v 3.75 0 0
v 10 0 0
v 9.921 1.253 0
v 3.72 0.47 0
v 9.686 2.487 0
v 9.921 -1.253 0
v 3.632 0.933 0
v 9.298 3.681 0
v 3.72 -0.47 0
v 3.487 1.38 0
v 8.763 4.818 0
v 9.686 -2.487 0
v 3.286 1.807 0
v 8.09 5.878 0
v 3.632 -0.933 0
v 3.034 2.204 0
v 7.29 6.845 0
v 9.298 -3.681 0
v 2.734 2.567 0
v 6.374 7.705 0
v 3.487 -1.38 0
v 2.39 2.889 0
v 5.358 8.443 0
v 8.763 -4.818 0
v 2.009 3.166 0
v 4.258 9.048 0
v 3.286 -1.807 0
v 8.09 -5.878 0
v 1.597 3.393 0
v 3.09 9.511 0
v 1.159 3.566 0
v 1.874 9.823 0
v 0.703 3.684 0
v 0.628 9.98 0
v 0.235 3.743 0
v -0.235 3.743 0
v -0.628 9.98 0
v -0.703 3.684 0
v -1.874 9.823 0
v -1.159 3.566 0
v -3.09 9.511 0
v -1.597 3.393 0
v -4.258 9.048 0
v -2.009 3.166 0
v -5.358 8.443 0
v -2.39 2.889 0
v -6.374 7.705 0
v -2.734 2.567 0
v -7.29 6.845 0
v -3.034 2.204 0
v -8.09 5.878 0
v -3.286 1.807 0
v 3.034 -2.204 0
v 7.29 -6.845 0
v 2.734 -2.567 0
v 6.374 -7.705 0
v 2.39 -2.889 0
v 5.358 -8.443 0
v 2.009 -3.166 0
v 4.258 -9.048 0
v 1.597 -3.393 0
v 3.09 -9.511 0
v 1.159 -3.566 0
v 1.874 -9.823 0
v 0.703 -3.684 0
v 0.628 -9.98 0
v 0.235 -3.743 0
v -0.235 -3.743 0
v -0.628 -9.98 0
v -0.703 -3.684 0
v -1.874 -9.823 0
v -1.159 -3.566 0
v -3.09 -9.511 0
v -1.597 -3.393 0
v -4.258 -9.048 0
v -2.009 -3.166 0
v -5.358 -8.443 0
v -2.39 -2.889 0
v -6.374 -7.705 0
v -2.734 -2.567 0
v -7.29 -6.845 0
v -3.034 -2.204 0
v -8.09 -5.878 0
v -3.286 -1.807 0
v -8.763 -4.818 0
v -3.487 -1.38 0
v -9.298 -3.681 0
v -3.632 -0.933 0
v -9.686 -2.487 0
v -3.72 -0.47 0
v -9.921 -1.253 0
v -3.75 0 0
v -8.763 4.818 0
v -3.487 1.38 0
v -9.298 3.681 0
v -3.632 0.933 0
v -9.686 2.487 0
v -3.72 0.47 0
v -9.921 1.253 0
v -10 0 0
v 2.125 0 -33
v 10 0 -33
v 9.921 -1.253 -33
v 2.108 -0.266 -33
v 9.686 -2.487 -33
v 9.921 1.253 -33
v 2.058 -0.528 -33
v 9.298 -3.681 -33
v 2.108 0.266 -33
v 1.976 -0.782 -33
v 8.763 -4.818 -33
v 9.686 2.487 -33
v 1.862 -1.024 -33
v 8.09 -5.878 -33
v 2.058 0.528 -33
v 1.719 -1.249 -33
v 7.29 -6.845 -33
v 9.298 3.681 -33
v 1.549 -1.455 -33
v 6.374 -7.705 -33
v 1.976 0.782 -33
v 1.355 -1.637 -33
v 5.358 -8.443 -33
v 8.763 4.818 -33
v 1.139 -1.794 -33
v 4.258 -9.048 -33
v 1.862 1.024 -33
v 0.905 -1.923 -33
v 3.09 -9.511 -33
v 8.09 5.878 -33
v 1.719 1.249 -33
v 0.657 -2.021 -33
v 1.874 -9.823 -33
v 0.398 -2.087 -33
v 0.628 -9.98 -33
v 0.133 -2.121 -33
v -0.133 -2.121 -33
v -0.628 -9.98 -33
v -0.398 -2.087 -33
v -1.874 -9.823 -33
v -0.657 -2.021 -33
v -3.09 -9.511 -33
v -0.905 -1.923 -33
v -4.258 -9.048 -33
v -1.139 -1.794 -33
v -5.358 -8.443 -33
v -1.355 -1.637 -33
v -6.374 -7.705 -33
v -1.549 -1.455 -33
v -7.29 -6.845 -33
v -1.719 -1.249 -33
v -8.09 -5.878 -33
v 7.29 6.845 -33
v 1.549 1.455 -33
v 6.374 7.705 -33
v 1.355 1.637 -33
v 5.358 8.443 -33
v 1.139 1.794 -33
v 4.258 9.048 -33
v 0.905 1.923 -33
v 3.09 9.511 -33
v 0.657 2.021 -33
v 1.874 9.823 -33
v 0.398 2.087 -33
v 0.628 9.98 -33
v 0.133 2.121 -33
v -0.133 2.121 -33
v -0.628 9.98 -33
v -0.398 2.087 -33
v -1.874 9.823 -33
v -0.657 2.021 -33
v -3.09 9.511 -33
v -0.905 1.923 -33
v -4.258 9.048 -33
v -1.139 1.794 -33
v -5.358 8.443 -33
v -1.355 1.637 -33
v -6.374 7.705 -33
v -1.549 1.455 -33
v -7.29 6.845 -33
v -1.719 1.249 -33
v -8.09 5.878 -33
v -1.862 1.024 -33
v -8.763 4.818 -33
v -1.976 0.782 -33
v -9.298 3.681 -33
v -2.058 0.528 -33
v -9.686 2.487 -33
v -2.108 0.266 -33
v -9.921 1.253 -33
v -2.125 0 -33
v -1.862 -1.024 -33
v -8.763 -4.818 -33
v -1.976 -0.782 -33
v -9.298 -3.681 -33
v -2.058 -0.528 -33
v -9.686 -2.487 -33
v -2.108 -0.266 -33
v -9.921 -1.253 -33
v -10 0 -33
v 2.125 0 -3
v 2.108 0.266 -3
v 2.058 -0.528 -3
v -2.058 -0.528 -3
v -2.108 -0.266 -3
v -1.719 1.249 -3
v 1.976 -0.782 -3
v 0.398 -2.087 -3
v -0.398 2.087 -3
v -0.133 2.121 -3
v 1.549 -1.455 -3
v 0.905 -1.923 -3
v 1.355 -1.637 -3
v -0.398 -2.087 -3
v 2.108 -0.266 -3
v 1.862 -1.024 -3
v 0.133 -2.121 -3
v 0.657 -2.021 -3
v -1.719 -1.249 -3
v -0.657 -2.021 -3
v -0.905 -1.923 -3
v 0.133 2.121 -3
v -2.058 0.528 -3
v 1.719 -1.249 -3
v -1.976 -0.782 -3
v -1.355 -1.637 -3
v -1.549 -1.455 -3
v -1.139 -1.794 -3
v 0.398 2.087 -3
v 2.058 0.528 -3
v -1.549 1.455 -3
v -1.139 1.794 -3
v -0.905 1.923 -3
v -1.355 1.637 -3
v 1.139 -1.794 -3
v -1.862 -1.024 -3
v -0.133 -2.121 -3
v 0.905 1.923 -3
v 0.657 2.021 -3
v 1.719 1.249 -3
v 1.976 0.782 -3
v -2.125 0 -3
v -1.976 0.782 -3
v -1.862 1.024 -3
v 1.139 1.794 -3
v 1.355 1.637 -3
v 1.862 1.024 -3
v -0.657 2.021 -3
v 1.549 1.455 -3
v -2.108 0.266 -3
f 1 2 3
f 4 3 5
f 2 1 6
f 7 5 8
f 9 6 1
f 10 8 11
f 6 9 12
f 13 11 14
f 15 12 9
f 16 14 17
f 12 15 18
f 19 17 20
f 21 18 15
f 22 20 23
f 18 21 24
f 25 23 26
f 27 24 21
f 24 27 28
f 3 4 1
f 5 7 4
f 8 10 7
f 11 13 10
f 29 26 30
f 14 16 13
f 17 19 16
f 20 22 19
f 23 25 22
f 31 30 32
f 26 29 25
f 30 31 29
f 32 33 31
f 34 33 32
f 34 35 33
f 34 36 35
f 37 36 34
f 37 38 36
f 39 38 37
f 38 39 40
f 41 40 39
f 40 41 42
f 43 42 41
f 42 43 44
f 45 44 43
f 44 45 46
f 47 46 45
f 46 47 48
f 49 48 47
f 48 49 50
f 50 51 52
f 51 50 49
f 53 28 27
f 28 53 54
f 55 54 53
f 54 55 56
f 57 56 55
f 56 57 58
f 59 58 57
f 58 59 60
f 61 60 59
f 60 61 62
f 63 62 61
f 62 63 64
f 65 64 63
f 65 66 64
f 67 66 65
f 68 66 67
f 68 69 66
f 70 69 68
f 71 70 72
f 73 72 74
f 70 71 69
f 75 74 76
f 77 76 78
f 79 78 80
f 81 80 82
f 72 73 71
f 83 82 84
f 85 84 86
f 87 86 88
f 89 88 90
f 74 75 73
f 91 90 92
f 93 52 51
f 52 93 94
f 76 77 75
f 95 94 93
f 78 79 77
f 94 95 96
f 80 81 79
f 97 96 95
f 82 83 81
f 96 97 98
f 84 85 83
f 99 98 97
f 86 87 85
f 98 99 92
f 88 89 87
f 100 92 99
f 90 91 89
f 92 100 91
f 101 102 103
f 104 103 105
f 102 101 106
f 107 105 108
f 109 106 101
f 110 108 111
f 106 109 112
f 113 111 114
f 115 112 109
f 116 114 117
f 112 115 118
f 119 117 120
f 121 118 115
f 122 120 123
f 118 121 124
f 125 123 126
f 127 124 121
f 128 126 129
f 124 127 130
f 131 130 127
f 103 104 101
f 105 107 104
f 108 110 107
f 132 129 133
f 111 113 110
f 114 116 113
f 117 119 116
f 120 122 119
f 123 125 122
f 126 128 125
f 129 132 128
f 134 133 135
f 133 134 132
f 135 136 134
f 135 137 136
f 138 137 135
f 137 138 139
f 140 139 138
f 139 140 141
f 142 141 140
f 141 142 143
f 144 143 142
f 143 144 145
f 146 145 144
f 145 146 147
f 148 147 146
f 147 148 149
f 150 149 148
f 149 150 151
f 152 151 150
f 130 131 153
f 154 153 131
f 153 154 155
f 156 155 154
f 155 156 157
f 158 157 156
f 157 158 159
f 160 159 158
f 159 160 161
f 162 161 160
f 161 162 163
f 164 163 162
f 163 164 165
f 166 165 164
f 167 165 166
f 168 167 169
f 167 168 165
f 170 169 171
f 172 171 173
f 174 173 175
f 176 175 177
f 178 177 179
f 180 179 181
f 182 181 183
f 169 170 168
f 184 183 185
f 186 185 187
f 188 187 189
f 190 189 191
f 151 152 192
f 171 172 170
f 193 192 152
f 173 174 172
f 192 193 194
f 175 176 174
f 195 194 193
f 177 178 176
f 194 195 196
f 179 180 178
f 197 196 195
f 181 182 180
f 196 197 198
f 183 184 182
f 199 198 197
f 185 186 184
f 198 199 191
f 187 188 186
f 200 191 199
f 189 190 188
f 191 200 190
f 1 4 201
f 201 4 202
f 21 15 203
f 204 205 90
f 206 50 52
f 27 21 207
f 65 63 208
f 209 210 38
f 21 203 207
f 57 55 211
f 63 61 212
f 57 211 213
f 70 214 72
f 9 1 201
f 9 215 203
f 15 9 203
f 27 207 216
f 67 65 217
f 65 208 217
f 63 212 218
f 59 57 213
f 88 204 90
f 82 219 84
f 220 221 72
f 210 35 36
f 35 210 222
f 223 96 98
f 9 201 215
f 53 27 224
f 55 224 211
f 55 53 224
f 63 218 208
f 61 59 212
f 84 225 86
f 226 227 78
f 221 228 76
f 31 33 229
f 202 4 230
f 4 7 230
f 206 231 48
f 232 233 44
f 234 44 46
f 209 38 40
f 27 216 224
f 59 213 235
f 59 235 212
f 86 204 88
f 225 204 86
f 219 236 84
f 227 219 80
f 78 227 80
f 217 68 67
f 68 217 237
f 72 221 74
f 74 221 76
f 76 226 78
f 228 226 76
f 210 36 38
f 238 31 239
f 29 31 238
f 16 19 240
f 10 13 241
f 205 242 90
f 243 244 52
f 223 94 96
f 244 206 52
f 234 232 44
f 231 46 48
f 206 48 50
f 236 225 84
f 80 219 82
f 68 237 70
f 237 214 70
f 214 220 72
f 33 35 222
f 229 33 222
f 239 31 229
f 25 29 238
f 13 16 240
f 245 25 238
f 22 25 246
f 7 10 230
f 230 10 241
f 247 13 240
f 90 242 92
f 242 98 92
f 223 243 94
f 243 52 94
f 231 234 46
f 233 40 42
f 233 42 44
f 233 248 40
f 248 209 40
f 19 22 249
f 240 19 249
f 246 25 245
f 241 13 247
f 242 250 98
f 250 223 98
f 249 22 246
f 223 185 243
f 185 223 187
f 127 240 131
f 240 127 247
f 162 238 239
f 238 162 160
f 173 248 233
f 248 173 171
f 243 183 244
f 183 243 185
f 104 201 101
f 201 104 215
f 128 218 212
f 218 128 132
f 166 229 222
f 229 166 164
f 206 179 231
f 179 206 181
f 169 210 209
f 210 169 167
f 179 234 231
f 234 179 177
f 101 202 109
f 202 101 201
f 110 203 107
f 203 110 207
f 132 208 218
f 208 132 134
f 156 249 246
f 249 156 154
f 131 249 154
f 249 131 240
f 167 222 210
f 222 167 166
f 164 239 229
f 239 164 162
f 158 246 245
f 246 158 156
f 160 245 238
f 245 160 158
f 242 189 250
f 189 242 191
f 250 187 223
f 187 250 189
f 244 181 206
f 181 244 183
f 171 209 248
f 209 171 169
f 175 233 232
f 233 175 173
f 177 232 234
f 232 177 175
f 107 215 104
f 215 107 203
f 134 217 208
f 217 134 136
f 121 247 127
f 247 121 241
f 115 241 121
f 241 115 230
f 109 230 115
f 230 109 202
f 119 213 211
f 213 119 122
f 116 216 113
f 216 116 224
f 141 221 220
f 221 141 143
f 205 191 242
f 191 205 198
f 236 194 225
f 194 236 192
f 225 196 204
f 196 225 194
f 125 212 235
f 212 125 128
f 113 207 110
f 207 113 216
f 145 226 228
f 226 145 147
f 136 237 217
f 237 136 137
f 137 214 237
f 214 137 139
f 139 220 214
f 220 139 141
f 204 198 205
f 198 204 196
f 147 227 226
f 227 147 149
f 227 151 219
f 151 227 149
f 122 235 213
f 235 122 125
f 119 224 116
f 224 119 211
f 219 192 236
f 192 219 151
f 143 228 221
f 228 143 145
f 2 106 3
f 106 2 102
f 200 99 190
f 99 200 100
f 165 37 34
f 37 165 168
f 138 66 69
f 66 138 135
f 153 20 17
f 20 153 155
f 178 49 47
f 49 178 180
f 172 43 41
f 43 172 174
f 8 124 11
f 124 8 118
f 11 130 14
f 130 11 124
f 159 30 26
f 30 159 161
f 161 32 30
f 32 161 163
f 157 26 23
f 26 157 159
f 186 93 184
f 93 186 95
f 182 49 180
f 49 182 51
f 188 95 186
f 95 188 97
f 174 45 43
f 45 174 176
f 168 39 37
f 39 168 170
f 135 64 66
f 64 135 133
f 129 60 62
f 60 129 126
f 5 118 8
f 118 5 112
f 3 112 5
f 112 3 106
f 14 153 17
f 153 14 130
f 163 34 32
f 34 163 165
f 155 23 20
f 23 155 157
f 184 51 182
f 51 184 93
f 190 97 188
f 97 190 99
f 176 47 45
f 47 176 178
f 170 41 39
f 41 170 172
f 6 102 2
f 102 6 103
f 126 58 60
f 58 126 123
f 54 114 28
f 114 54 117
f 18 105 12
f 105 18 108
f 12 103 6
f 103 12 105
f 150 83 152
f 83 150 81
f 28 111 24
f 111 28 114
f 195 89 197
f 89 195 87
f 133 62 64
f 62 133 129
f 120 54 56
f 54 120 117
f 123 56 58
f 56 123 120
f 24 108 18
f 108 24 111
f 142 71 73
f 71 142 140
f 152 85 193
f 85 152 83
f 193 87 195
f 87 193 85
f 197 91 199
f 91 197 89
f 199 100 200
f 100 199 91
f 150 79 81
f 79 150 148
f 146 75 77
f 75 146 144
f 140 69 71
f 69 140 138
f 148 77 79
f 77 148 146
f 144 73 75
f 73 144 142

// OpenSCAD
$fn = 50;


difference() {
	union() {
		translate(v = [0, 0, -33.0000000000]) {
			cylinder(h = 33, r = 10.0000000000);
		}
		cylinder(h = 0, r = 20.0000000000);
	}
	union() {
		translate(v = [0, 0, 0]) {
			rotate(a = [0, 0, 0]) {
				difference() {
					union() {
						#translate(v = [0, 0, -33.0000000000]) {
							cylinder(h = 33, r = 2.0000000000);
						}
						#translate(v = [0, 0, -3]) {
							cylinder(h = 3, r1 = 2.1250000000, r2 = 3.7500000000);
						}
						#translate(v = [0, 0, -33.0000000000]) {
							cylinder(h = 33, r = 2.1250000000);
						}
						#translate(v = [0, 0, -33.0000000000]) {
							cylinder(h = 33, r = 2.0000000000);
						}
					}
					union();
				}
			}
		}
	}
}
